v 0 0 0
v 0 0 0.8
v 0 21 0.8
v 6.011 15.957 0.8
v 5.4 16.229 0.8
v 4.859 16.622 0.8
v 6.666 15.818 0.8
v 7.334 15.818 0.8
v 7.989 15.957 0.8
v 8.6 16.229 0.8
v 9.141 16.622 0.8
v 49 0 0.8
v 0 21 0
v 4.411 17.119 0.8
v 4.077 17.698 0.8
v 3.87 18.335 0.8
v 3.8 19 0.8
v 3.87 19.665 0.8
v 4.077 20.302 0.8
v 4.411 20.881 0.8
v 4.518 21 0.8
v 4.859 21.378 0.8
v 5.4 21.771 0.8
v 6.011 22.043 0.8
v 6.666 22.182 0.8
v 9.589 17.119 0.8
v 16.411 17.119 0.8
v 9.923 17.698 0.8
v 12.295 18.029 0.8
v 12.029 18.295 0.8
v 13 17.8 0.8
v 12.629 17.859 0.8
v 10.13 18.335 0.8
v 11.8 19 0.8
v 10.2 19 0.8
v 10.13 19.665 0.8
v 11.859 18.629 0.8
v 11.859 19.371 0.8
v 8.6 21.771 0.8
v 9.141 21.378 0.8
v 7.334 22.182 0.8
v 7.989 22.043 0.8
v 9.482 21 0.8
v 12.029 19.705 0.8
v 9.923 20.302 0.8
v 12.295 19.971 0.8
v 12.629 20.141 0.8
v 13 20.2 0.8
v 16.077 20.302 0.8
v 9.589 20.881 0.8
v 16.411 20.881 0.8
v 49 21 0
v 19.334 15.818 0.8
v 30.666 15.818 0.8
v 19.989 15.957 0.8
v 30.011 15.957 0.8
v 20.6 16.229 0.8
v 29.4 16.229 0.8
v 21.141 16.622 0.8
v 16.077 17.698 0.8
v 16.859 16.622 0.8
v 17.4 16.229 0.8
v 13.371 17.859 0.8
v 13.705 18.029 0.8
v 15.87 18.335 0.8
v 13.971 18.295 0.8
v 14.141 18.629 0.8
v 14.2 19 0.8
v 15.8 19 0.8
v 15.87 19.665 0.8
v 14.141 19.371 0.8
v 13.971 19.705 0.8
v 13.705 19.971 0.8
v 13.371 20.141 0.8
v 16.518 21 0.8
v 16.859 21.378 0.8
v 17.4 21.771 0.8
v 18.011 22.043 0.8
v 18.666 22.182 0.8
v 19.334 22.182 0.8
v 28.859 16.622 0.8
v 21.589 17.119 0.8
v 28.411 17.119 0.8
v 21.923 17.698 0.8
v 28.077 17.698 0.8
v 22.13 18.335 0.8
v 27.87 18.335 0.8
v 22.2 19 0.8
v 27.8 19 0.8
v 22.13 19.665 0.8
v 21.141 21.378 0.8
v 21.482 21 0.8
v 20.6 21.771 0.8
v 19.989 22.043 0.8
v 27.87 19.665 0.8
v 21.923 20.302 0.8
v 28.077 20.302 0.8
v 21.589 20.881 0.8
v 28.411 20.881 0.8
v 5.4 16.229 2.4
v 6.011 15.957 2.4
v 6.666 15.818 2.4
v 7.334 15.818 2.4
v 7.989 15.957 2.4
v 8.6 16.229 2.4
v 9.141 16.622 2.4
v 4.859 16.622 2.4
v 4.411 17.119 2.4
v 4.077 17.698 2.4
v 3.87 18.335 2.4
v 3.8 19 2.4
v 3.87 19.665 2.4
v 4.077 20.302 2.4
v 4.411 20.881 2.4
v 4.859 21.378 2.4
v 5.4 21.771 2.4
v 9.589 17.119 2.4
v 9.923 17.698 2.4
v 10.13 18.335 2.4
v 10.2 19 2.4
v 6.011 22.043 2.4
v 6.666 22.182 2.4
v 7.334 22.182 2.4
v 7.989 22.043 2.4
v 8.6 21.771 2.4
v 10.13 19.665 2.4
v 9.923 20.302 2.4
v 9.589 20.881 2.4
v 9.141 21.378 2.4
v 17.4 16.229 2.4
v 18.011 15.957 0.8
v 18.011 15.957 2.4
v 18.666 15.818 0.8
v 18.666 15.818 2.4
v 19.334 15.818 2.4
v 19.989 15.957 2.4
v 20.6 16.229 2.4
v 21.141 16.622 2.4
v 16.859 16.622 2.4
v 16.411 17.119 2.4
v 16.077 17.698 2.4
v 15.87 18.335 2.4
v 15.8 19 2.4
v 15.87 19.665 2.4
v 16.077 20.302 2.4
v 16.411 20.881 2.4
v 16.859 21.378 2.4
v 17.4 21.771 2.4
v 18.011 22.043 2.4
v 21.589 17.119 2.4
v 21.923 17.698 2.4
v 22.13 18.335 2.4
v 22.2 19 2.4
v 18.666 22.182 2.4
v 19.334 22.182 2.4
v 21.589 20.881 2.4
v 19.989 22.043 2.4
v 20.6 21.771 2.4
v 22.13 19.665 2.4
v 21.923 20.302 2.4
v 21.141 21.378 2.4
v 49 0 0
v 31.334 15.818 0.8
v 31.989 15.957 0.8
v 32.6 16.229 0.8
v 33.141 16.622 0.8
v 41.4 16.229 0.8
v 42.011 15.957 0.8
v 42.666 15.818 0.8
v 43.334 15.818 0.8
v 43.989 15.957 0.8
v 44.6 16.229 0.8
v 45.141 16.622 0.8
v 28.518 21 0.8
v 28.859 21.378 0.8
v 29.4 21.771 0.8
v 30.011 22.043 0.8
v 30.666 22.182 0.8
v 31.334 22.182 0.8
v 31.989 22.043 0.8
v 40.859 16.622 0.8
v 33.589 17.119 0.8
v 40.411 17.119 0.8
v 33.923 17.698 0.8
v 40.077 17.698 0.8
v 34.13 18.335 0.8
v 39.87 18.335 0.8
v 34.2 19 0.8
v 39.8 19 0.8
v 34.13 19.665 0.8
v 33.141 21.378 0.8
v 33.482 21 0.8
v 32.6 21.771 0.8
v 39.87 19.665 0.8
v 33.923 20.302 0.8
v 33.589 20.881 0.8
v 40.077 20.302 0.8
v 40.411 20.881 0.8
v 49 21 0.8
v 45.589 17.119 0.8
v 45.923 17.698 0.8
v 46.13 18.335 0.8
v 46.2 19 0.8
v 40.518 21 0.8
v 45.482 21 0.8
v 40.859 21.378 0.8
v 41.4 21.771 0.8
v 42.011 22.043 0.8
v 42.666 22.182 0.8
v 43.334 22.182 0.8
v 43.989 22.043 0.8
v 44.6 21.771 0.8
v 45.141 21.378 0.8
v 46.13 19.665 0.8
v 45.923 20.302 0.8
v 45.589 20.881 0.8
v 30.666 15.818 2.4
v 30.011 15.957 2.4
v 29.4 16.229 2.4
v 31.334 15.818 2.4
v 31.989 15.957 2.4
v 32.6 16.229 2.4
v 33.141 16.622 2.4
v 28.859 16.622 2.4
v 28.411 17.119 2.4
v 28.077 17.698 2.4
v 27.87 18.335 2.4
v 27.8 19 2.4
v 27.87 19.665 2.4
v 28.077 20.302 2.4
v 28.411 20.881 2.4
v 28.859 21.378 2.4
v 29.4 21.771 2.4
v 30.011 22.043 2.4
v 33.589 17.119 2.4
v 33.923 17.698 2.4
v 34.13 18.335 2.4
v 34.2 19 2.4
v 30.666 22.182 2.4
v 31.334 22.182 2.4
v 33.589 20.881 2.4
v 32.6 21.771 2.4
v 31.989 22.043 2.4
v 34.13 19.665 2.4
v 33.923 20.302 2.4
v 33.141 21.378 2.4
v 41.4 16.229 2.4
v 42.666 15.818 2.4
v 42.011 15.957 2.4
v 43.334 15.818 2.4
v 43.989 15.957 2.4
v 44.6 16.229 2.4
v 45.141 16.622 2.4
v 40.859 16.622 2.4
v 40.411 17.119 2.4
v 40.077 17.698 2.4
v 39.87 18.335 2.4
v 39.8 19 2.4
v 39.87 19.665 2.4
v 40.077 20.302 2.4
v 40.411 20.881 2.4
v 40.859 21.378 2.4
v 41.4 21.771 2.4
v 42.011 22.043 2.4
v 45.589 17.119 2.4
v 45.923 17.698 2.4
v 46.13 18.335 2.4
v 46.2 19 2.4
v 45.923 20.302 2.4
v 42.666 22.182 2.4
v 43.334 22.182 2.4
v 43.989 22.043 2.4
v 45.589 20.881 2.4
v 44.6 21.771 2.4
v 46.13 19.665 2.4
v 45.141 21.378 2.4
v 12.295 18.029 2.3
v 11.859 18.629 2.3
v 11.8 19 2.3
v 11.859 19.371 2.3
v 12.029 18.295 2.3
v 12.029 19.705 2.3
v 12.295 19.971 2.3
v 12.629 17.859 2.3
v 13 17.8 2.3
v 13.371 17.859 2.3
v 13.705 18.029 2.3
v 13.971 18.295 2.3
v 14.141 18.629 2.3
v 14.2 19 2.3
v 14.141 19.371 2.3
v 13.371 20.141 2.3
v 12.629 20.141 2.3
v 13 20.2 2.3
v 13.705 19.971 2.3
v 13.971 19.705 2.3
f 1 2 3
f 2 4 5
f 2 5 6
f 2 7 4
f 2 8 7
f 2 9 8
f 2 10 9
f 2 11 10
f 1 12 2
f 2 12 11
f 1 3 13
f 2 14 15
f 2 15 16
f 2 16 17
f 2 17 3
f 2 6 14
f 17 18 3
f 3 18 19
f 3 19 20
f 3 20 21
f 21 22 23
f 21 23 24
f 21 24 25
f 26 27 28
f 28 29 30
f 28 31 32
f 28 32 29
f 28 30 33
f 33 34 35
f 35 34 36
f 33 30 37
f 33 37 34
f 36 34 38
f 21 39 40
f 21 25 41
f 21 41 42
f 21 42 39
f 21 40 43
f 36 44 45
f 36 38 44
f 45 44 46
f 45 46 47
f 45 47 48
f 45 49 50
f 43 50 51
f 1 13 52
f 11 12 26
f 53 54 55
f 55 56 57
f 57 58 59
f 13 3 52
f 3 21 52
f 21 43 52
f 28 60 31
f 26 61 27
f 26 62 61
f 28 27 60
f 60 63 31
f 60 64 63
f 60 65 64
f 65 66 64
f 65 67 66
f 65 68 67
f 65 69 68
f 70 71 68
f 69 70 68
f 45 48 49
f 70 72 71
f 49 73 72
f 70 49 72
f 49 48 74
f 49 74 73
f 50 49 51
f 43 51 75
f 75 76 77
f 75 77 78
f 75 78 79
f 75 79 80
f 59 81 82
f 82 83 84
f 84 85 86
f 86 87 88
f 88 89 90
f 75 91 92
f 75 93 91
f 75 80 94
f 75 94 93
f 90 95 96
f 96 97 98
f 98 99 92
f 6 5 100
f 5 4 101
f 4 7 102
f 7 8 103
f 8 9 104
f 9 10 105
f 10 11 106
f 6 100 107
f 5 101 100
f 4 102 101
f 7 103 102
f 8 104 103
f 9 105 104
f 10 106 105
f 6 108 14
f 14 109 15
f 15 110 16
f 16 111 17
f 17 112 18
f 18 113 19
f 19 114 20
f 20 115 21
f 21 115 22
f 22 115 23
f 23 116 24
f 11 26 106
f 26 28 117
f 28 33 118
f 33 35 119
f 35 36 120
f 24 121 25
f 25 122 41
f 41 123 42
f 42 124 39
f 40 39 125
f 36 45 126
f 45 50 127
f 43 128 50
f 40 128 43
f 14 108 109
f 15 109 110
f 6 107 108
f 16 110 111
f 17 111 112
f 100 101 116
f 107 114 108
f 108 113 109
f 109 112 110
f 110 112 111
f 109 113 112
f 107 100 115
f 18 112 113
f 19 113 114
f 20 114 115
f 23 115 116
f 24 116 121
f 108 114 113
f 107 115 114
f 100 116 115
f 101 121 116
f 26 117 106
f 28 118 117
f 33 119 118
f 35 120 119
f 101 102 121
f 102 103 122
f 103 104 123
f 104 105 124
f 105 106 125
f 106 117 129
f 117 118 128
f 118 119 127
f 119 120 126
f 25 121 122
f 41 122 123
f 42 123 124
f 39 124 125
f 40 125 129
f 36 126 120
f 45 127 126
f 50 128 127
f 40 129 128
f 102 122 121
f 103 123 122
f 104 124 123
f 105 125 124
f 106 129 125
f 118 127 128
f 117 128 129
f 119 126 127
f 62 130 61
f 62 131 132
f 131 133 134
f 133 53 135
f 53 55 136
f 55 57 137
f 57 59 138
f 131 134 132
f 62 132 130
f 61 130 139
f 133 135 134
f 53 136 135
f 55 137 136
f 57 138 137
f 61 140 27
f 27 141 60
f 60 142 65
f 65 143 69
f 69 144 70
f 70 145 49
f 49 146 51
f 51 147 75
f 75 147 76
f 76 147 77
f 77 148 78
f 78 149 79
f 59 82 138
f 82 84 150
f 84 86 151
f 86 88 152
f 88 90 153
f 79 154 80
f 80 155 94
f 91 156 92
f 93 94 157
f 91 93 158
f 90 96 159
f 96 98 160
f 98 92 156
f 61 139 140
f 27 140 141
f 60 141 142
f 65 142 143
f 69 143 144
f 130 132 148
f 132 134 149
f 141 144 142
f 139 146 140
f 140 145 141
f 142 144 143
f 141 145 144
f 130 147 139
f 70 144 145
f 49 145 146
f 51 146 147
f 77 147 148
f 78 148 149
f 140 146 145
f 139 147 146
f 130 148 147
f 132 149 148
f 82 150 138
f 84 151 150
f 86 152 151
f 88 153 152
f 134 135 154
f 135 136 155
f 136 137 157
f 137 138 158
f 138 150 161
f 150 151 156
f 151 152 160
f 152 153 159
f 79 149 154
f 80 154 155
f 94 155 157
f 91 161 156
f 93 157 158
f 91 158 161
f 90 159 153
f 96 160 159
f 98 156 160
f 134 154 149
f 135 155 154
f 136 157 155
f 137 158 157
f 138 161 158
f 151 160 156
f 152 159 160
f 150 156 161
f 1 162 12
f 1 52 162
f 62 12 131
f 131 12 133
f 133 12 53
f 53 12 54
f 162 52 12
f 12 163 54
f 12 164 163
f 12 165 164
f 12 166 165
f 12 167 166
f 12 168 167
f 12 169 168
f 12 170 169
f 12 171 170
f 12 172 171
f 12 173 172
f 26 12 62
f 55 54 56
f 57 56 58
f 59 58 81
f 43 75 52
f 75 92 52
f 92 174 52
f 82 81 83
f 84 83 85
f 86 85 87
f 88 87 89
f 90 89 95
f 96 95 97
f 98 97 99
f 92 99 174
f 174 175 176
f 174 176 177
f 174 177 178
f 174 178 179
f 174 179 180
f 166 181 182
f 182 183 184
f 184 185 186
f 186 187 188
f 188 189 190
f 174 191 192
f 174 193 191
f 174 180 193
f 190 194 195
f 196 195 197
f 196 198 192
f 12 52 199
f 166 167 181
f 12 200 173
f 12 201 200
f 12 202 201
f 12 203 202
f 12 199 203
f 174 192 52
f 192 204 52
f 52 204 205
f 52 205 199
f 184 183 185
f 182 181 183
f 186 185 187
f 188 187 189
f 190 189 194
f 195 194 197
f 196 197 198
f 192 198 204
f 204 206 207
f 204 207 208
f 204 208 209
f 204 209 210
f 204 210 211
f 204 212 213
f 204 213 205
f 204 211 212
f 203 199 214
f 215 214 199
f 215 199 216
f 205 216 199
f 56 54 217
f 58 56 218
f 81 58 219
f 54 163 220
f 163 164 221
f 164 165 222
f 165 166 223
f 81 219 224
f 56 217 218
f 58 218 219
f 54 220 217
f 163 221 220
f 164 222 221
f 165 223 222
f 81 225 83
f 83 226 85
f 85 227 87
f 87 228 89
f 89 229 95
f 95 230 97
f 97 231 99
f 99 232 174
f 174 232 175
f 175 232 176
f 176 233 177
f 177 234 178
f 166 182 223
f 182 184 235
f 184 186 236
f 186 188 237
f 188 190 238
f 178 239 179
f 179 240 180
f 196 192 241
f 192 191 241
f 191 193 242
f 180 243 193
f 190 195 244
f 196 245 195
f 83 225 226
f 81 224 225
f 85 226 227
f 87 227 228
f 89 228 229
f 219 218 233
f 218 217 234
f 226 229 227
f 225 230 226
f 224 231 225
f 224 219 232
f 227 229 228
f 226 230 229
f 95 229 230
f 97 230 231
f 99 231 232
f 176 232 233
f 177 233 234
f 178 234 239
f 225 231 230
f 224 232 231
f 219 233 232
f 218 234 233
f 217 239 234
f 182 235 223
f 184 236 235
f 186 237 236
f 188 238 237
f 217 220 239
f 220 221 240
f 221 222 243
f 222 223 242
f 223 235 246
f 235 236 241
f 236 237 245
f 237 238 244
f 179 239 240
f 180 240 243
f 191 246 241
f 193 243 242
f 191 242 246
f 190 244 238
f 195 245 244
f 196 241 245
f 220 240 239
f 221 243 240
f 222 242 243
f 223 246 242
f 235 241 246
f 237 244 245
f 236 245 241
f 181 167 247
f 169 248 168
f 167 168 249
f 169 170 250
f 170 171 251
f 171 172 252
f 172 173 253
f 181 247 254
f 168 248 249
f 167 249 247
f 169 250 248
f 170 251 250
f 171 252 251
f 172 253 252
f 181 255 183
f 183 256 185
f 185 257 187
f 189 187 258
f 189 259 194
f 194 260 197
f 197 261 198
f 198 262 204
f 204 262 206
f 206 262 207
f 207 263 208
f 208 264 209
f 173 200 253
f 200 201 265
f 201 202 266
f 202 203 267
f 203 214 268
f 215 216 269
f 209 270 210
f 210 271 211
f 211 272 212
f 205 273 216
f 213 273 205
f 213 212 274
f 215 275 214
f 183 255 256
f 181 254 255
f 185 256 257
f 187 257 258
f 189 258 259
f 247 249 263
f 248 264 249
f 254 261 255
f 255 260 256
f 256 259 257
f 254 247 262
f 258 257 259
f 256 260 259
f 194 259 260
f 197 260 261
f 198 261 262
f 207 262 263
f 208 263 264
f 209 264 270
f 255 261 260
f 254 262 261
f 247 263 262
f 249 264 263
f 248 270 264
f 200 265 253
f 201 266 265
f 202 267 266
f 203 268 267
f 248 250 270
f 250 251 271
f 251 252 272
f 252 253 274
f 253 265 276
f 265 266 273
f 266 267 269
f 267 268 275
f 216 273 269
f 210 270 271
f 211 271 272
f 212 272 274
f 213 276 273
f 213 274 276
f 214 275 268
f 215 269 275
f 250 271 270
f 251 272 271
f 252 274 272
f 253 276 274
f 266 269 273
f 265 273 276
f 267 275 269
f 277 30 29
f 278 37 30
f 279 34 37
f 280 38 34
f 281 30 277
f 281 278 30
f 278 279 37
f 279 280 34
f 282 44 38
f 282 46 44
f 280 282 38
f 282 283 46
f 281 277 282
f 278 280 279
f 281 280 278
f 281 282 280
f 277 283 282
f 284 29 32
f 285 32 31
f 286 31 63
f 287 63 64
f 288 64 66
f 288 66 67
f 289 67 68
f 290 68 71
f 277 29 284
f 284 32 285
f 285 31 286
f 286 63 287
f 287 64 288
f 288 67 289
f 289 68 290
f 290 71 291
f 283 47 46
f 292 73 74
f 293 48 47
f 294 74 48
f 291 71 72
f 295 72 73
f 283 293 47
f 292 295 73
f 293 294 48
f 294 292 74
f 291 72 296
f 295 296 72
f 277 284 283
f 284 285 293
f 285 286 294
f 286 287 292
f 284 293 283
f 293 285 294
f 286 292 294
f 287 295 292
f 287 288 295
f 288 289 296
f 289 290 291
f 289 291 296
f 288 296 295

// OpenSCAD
// file: ../../00_common/dummies/dummy_omm_ucs_pcb.scad
// =============================================================================
// OpenMotorBridge - Dummy 3D Model: OMM 2.4 GHz UCS Intercom PCBA (PCBA 09)
// =============================================================================
// File: hardware/cad/scad/00_common/dummies/dummy_omm_ucs_pcb.scad
// Description: Accurate 3D CAD model of the autonomous OMM 2.4 GHz UCS PCB:
//              - 60.0 x 30.0 x 1.0 mm FR4 substrate (ENIG gold finish)
//              - 4x M2 mounting holes (pitch: 52.0 x 22.0 mm)
//              - Espressif ESP32-C6-MINI-1 (13.2 x 16.6 mm)
//              - Texas Instruments BQ24075 PMIC (QFN-16 3x3mm)
//              - Everest Semi ES8311 Audio Codec (QFN-20 3x3mm)
//              - Johanson 2450AT45A100 2.4 GHz ceramic antenna
//              - IP67 16-Pin USB-C receptacle (Korean HRO TYPE-C-31-M-12)
//              - 4x tactile IP67 micro-switches (Panasonic EVQ-P2)
//              - WS2812B-2020 RGB Status-LED
//              - 600 mAh LiPo Flat Pouch Cell (38 x 24 x 4.5 mm)
// =============================================================================

include <../parameters.scad>;

module dummy_omm_ucs_pcb() {
    pcb_l = 60.0;
    pcb_w = 30.0;
    pcb_h = 1.0;

    // 1. FR4 Substrate (Black Soldermask, ENIG Gold Pads)
    color([0.12, 0.12, 0.14]) {
        difference() {
            // Main PCB outline with rounded corners
            hull() {
                translate([2.5, 2.5, 0]) cylinder(r=2.5, h=pcb_h, $fn=32);
                translate([pcb_l - 2.5, 2.5, 0]) cylinder(r=2.5, h=pcb_h, $fn=32);
                translate([2.5, pcb_w - 2.5, 0]) cylinder(r=2.5, h=pcb_h, $fn=32);
                translate([pcb_l - 2.5, pcb_w - 2.5, 0]) cylinder(r=2.5, h=pcb_h, $fn=32);
            }
            // 4x M2 Mounting Holes (52.0 x 22.0 mm pitch, 4.0 mm from edges)
            translate([4.0, 4.0, -0.1]) cylinder(r=M2_SCREW_HOLE_R, h=pcb_h + 0.2, $fn=24);
            translate([pcb_l - 4.0, 4.0, -0.1]) cylinder(r=M2_SCREW_HOLE_R, h=pcb_h + 0.2, $fn=24);
            translate([4.0, pcb_w - 4.0, -0.1]) cylinder(r=M2_SCREW_HOLE_R, h=pcb_h + 0.2, $fn=24);
            translate([pcb_l - 4.0, pcb_w - 4.0, -0.1]) cylinder(r=M2_SCREW_HOLE_R, h=pcb_h + 0.2, $fn=24);
        }
    }

    // 2. Espressif ESP32-C6-MINI-1 Module (Top Face, Centered in X=26mm)
    color("silver") {
        translate([18.0, 7.0, pcb_h])
            cube(size=[16.6, 13.2, 2.4], center=false);
    }

    // 3. TI BQ24075 PMIC (QFN-16 3x3mm)
    color("black") {
        translate([38.0, 6.0, pcb_h])
            cube(size=[3.0, 3.0, 0.9], center=false);
    }

    // 4. Everest Semi ES8311 Audio Codec (QFN-20 3x3mm)
    color("black") {
        translate([38.0, 14.0, pcb_h])
            cube(size=[3.0, 3.0, 0.9], center=false);
    }

    // 5. Johanson 2450AT Ceramic Chip Antenna (+X Edge, Keepout zone)
    color("whitesmoke") {
        translate([pcb_l - 11.5, pcb_w/2.0 - 1.0, pcb_h])
            cube(size=[9.5, 2.0, 1.2], center=false);
    }

    // 6. IP67 16-Pin USB-C Receptacle (-X Edge, facing outward)
    color("silver") {
        translate([-1.5, pcb_w/2.0 - 4.5, pcb_h])
            cube(size=[7.5, 9.0, 3.2], center=false);
    }

    // 7. 4x Tactile IP67 Micro-Switches (Top Face)
    color("darkslategray") {
        // SW1: Power / MFB
        translate([10.0, 22.0, pcb_h]) cube(size=[3.5, 2.8, 1.2], center=true);
        // SW2: Mesh / Group
        translate([22.0, 22.0, pcb_h]) cube(size=[3.5, 2.8, 1.2], center=true);
        // SW3: Vol+
        translate([34.0, 22.0, pcb_h]) cube(size=[3.5, 2.8, 1.2], center=true);
        // SW4: Vol-
        translate([46.0, 22.0, pcb_h]) cube(size=[3.5, 2.8, 1.2], center=true);
    }

    // 8. WS2812B-2020 RGB Status-LED
    color("cyan") {
        translate([16.0, 22.0, pcb_h])
            cube(size=[2.0, 2.0, 0.7], center=true);
    }

    // 9. 1S LiPo Flat Pouch Cell (Mounted on Bottom Face or Nested)
    color([0.15, 0.35, 0.65]) {
        translate([11.0, (pcb_w - 24.0)/2.0, -4.5])
            cube(size=[38.0, 24.0, 4.5], center=false);
    }
}

// Standalone Render Preview
dummy_omm_ucs_pcb();
// file: ../../00_common/screw_bosses.scad
// =============================================================================
// OpenMotorBridge - Screw Bosses & Fastener Primitives
// =============================================================================
// File: hardware/cad/scad/00_common/screw_bosses.scad
// Description: Reusable parametric modules for screw standoffs, corner clamping
//              posts, and mounting ears.
// =============================================================================

include <parameters.scad>;

// 1. Cylindrical Screw Standoff Boss (with center hole)
module screw_boss(outer_r=2.5, inner_r=1.2, h=5.0) {
    difference() {
        cylinder(r=outer_r, h=h, center=false);
        translate([0, 0, -0.1])
            cylinder(r=inner_r, h=h + 0.2, center=false);
    }
}

// 2. Rectangular Corner Clamping Post (with center screw hole)
module corner_screw_post(size_x=5.0, size_y=5.0, h=12.0, hole_r=1.65, hole_h=10.0, hole_offset_z=2.0) {
    difference() {
        cube(size=[size_x, size_y, h], center=false);
        translate([size_x/2.0, size_y/2.0, hole_offset_z])
            cylinder(r=hole_r, h=hole_h + 0.1, center=false);
    }
}

// 3. M4 Silentblock Outer Mounting Ear (Centered in Y around y=0, extends along +X)
module mounting_ear_m4(ear_len=14.0, ear_w=12.0, ear_h=5.0, hole_r=2.2) {
    difference() {
        union() {
            translate([0, -ear_w/2.0, 0])
                cube(size=[ear_len - ear_w/2.0, ear_w, ear_h], center=false);
            translate([ear_len - ear_w/2.0, 0, 0])
                cylinder(r=ear_w/2.0, h=ear_h, center=false);
        }
        translate([ear_len - ear_w/2.0, 0, -0.1])
            cylinder(r=hole_r, h=ear_h + 0.2, center=false);
    }
}

// 4. Captive Hex Nut Pocket (DIN 934 / DIN 985 with center screw through-hole)
module hex_nut_pocket(sw=NUT_M4_SW, h=NUT_M4_H, screw_r=M4_SCREW_HOLE_R, through_h=10.0) {
    // Hexagonal pocket (flat-to-flat SW converted to circle radius: r = sw / sqrt(3))
    hex_r = sw / sqrt(3);
    union() {
        // Hexagonal nut pocket
        cylinder(r=hex_r, h=h, center=false, $fn=6);
        // Screw clearance through-hole
        translate([0, 0, -through_h/2.0])
            cylinder(r=screw_r, h=through_h + h, center=false, $fn=30);
    }
}
// main file
// =============================================================================
// OpenMotorBridge - OMM 2.4 GHz UCS Module: Silicone Keypad (Shore 50A)
// =============================================================================
// File: hardware/cad/scad/03_pod_cartridges/parts/omm_ucs_silicone_keypad.scad
// =============================================================================

use <omm_ucs_module.scad>;

omm_ucs_silicone_keypad();
